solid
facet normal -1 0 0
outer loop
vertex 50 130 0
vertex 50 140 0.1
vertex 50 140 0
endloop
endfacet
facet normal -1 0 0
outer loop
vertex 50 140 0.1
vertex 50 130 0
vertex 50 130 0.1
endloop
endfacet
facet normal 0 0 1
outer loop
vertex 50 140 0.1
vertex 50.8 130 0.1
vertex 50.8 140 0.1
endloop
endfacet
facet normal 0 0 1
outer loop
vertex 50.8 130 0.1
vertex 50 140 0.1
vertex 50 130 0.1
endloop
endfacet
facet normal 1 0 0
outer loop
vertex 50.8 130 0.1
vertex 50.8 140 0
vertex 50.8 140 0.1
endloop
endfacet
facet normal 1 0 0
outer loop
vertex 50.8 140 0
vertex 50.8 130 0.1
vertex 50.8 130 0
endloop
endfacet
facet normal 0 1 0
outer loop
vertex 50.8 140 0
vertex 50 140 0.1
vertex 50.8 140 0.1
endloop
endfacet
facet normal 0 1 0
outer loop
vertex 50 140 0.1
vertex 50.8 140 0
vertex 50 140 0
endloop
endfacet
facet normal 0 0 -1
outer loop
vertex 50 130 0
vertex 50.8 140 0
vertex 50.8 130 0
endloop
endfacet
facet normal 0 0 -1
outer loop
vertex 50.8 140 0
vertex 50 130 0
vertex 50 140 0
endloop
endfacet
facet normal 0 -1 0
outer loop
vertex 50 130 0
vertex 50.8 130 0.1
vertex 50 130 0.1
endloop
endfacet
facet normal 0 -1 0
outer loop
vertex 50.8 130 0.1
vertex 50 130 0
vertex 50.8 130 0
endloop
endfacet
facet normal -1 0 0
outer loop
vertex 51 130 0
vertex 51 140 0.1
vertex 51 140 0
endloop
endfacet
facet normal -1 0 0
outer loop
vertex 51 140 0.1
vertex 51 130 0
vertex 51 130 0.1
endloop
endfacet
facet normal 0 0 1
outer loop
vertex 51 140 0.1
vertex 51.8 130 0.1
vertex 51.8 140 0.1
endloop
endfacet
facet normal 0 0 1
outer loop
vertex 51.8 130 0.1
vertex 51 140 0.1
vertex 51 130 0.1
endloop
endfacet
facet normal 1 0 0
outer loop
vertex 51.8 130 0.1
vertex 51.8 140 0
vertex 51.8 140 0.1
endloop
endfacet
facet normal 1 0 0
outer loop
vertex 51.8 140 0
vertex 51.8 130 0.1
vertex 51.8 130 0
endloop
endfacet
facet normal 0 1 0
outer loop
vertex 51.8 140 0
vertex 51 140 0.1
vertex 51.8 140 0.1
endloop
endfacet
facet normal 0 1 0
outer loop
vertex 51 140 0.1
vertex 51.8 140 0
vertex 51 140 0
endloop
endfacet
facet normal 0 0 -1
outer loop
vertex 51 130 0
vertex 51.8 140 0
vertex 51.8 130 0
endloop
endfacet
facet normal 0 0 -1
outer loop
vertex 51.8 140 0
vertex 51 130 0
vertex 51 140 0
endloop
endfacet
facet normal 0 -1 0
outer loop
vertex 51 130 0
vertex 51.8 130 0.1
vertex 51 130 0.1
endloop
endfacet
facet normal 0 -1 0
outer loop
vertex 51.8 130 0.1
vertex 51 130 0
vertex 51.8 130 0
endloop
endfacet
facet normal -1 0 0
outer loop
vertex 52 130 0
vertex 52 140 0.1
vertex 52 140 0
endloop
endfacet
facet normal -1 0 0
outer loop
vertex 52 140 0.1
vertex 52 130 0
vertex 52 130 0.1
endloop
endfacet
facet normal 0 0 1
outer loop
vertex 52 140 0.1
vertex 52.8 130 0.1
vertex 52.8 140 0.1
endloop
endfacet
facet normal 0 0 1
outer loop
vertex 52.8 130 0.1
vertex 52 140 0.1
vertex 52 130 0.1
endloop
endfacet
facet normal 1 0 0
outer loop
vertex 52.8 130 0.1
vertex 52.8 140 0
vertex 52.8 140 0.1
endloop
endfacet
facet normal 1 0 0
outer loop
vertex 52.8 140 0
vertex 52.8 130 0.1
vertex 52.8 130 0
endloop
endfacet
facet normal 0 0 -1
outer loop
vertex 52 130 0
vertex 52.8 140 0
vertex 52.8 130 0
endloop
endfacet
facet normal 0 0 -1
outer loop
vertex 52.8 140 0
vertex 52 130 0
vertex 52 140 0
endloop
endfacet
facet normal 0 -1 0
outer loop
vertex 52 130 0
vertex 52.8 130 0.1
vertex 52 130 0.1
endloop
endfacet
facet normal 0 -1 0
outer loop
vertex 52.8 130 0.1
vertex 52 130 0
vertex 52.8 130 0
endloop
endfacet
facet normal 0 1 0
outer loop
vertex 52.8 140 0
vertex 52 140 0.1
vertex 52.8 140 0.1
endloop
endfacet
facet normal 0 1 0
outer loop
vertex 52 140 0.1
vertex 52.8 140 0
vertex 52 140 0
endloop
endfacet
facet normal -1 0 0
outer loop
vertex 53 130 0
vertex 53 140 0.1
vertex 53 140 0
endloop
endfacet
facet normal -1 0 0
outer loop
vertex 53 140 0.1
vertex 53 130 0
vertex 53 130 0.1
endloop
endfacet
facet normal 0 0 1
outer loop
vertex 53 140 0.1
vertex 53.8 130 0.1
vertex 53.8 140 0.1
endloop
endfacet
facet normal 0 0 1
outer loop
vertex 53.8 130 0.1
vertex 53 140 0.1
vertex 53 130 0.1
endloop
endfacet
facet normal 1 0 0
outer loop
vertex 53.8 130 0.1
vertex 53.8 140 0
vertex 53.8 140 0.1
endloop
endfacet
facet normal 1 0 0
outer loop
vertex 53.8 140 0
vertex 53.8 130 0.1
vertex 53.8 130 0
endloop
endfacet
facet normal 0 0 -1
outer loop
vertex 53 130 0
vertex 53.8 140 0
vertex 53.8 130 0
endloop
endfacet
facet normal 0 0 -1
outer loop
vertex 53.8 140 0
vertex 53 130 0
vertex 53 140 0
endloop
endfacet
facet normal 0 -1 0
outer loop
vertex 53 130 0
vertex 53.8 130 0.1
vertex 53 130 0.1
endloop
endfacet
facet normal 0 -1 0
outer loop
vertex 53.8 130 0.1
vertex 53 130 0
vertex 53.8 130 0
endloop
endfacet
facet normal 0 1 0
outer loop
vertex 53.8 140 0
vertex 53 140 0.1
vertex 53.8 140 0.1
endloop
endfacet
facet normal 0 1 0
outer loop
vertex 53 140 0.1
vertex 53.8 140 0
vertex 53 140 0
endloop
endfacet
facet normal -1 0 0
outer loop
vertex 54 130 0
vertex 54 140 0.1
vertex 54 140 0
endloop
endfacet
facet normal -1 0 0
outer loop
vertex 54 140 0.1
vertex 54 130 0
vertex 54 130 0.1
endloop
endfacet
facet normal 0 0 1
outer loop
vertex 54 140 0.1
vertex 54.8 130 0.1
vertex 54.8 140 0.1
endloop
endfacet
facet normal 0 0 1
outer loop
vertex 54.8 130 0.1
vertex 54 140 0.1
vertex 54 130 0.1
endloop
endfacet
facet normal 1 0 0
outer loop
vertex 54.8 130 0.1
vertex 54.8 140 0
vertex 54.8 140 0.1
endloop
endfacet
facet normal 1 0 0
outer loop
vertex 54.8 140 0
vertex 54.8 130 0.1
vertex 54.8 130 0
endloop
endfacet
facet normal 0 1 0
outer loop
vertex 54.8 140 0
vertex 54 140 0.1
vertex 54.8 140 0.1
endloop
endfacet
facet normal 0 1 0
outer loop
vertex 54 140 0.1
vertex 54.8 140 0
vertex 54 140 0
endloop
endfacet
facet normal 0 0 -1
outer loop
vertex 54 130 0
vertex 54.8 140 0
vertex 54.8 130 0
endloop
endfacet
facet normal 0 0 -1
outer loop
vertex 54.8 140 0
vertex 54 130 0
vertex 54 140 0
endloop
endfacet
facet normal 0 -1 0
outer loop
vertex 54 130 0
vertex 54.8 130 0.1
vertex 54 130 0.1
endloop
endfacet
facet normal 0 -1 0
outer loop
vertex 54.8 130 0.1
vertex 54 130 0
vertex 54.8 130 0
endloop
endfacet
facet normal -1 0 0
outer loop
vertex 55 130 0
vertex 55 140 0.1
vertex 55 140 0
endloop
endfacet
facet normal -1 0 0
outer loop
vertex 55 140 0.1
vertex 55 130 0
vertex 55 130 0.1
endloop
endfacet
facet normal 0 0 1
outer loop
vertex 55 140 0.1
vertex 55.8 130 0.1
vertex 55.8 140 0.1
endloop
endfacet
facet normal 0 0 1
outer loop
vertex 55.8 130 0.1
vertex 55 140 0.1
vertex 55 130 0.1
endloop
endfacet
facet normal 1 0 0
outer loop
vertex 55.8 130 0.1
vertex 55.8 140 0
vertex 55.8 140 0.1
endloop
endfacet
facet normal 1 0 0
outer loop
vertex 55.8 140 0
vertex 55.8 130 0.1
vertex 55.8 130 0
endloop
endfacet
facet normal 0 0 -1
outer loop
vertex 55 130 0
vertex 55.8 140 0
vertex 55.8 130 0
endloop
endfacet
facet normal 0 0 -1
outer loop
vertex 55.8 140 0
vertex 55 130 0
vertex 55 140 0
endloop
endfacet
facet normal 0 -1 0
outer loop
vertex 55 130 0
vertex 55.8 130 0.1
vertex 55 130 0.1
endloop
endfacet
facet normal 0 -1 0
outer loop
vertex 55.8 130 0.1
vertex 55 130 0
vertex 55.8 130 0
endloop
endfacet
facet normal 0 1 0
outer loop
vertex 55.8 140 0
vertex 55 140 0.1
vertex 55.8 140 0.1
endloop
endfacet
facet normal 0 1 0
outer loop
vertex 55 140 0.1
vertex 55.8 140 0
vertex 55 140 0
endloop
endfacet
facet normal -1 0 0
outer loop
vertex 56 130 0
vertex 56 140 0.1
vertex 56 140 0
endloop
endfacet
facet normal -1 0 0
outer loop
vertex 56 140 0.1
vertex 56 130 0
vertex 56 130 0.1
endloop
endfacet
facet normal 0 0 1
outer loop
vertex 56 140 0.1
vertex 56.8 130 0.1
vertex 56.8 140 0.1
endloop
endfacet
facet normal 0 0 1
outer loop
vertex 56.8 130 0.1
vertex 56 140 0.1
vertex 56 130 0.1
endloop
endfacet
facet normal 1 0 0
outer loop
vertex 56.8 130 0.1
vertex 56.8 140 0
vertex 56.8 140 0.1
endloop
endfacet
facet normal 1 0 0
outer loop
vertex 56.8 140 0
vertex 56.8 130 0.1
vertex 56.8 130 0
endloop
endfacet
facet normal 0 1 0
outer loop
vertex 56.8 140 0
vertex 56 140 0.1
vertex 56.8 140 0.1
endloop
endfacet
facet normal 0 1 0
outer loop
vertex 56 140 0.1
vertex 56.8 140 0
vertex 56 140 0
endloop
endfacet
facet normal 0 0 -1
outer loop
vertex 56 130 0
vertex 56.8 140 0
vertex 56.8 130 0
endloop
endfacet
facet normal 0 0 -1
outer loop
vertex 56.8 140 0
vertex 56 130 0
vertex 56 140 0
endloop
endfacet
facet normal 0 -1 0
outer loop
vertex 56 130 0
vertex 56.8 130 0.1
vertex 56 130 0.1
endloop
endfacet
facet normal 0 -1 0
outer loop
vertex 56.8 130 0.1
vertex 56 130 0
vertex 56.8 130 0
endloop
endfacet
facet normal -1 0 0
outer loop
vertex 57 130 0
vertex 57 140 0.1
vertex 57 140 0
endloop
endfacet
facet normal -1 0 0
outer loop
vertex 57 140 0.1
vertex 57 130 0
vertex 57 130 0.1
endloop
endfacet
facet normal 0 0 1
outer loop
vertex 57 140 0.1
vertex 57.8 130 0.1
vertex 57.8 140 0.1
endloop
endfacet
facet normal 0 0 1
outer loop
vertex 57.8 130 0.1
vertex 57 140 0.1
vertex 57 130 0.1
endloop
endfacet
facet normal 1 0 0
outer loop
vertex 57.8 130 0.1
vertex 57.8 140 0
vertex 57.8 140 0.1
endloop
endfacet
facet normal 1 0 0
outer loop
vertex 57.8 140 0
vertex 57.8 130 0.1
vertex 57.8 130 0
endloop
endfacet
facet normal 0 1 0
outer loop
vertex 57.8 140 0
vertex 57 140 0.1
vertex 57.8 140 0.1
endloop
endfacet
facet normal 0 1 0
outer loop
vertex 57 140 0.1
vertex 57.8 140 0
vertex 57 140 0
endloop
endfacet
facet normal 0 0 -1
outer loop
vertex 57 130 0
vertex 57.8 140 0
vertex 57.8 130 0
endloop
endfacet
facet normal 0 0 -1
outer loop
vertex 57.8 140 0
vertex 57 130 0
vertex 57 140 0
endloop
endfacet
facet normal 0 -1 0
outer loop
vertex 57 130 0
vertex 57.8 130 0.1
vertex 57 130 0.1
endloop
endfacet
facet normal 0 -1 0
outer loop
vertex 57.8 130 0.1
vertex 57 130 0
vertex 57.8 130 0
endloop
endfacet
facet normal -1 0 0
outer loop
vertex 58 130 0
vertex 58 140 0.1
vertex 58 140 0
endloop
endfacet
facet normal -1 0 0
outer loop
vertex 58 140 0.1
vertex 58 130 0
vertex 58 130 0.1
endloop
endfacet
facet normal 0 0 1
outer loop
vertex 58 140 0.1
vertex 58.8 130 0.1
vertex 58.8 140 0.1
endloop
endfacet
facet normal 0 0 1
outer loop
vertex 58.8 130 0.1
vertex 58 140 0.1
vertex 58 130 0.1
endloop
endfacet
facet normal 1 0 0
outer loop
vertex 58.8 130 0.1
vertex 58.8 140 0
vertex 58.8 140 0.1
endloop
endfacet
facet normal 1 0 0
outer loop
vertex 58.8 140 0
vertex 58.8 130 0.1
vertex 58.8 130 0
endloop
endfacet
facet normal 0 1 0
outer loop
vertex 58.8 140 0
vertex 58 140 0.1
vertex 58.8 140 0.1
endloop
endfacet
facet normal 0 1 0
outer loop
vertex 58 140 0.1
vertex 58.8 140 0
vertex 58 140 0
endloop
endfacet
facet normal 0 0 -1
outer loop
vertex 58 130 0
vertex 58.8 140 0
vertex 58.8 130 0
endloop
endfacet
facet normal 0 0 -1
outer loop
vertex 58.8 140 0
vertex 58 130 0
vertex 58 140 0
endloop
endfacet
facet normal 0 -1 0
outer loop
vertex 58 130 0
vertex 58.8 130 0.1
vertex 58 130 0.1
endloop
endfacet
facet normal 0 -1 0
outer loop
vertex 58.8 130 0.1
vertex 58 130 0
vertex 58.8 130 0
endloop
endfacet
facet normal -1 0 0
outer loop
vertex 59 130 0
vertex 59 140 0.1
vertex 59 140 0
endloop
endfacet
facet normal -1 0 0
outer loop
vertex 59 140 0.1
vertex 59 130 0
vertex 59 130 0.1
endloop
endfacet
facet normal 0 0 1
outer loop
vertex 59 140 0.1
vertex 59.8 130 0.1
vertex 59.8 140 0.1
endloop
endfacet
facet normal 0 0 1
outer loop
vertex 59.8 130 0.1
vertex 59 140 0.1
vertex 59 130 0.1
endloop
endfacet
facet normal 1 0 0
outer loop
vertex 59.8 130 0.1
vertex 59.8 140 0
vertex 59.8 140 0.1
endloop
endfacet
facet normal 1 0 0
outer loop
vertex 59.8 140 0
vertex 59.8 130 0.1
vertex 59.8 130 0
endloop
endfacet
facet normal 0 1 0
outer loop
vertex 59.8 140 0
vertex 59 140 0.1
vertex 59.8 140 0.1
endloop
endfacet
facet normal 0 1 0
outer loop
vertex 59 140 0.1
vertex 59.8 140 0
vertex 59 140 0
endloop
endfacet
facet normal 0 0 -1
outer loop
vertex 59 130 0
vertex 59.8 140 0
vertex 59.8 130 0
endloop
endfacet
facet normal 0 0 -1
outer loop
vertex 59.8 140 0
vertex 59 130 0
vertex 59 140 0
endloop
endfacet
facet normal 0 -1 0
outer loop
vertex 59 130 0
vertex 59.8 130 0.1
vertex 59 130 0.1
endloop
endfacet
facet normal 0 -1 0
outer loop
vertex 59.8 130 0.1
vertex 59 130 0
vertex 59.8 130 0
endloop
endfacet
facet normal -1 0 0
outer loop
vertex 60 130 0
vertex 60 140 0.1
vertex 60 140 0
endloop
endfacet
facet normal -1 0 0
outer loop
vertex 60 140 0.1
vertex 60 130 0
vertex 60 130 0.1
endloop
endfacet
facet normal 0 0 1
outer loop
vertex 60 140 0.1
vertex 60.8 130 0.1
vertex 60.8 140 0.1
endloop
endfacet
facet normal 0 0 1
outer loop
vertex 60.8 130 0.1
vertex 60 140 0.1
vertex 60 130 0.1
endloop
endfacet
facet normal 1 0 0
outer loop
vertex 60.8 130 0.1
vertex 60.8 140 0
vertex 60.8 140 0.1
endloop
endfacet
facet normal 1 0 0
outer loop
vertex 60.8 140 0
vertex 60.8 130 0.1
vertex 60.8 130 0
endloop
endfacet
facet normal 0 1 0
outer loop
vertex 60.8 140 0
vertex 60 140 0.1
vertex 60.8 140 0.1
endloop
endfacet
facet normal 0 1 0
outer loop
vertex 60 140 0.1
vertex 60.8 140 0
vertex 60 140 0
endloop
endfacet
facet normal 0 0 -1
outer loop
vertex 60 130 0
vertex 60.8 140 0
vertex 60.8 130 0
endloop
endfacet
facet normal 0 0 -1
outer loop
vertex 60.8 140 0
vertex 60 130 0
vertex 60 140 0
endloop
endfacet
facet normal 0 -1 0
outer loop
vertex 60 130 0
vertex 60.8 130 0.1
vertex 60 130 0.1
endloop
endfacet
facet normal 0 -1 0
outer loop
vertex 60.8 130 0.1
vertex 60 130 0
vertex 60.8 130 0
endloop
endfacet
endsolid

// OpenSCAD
translate([10+40,10+120,0])
        for (i = [0 : 10]){
            translate([i,0,0])
                cube(size = [0.8,10,0.1]);
    }
